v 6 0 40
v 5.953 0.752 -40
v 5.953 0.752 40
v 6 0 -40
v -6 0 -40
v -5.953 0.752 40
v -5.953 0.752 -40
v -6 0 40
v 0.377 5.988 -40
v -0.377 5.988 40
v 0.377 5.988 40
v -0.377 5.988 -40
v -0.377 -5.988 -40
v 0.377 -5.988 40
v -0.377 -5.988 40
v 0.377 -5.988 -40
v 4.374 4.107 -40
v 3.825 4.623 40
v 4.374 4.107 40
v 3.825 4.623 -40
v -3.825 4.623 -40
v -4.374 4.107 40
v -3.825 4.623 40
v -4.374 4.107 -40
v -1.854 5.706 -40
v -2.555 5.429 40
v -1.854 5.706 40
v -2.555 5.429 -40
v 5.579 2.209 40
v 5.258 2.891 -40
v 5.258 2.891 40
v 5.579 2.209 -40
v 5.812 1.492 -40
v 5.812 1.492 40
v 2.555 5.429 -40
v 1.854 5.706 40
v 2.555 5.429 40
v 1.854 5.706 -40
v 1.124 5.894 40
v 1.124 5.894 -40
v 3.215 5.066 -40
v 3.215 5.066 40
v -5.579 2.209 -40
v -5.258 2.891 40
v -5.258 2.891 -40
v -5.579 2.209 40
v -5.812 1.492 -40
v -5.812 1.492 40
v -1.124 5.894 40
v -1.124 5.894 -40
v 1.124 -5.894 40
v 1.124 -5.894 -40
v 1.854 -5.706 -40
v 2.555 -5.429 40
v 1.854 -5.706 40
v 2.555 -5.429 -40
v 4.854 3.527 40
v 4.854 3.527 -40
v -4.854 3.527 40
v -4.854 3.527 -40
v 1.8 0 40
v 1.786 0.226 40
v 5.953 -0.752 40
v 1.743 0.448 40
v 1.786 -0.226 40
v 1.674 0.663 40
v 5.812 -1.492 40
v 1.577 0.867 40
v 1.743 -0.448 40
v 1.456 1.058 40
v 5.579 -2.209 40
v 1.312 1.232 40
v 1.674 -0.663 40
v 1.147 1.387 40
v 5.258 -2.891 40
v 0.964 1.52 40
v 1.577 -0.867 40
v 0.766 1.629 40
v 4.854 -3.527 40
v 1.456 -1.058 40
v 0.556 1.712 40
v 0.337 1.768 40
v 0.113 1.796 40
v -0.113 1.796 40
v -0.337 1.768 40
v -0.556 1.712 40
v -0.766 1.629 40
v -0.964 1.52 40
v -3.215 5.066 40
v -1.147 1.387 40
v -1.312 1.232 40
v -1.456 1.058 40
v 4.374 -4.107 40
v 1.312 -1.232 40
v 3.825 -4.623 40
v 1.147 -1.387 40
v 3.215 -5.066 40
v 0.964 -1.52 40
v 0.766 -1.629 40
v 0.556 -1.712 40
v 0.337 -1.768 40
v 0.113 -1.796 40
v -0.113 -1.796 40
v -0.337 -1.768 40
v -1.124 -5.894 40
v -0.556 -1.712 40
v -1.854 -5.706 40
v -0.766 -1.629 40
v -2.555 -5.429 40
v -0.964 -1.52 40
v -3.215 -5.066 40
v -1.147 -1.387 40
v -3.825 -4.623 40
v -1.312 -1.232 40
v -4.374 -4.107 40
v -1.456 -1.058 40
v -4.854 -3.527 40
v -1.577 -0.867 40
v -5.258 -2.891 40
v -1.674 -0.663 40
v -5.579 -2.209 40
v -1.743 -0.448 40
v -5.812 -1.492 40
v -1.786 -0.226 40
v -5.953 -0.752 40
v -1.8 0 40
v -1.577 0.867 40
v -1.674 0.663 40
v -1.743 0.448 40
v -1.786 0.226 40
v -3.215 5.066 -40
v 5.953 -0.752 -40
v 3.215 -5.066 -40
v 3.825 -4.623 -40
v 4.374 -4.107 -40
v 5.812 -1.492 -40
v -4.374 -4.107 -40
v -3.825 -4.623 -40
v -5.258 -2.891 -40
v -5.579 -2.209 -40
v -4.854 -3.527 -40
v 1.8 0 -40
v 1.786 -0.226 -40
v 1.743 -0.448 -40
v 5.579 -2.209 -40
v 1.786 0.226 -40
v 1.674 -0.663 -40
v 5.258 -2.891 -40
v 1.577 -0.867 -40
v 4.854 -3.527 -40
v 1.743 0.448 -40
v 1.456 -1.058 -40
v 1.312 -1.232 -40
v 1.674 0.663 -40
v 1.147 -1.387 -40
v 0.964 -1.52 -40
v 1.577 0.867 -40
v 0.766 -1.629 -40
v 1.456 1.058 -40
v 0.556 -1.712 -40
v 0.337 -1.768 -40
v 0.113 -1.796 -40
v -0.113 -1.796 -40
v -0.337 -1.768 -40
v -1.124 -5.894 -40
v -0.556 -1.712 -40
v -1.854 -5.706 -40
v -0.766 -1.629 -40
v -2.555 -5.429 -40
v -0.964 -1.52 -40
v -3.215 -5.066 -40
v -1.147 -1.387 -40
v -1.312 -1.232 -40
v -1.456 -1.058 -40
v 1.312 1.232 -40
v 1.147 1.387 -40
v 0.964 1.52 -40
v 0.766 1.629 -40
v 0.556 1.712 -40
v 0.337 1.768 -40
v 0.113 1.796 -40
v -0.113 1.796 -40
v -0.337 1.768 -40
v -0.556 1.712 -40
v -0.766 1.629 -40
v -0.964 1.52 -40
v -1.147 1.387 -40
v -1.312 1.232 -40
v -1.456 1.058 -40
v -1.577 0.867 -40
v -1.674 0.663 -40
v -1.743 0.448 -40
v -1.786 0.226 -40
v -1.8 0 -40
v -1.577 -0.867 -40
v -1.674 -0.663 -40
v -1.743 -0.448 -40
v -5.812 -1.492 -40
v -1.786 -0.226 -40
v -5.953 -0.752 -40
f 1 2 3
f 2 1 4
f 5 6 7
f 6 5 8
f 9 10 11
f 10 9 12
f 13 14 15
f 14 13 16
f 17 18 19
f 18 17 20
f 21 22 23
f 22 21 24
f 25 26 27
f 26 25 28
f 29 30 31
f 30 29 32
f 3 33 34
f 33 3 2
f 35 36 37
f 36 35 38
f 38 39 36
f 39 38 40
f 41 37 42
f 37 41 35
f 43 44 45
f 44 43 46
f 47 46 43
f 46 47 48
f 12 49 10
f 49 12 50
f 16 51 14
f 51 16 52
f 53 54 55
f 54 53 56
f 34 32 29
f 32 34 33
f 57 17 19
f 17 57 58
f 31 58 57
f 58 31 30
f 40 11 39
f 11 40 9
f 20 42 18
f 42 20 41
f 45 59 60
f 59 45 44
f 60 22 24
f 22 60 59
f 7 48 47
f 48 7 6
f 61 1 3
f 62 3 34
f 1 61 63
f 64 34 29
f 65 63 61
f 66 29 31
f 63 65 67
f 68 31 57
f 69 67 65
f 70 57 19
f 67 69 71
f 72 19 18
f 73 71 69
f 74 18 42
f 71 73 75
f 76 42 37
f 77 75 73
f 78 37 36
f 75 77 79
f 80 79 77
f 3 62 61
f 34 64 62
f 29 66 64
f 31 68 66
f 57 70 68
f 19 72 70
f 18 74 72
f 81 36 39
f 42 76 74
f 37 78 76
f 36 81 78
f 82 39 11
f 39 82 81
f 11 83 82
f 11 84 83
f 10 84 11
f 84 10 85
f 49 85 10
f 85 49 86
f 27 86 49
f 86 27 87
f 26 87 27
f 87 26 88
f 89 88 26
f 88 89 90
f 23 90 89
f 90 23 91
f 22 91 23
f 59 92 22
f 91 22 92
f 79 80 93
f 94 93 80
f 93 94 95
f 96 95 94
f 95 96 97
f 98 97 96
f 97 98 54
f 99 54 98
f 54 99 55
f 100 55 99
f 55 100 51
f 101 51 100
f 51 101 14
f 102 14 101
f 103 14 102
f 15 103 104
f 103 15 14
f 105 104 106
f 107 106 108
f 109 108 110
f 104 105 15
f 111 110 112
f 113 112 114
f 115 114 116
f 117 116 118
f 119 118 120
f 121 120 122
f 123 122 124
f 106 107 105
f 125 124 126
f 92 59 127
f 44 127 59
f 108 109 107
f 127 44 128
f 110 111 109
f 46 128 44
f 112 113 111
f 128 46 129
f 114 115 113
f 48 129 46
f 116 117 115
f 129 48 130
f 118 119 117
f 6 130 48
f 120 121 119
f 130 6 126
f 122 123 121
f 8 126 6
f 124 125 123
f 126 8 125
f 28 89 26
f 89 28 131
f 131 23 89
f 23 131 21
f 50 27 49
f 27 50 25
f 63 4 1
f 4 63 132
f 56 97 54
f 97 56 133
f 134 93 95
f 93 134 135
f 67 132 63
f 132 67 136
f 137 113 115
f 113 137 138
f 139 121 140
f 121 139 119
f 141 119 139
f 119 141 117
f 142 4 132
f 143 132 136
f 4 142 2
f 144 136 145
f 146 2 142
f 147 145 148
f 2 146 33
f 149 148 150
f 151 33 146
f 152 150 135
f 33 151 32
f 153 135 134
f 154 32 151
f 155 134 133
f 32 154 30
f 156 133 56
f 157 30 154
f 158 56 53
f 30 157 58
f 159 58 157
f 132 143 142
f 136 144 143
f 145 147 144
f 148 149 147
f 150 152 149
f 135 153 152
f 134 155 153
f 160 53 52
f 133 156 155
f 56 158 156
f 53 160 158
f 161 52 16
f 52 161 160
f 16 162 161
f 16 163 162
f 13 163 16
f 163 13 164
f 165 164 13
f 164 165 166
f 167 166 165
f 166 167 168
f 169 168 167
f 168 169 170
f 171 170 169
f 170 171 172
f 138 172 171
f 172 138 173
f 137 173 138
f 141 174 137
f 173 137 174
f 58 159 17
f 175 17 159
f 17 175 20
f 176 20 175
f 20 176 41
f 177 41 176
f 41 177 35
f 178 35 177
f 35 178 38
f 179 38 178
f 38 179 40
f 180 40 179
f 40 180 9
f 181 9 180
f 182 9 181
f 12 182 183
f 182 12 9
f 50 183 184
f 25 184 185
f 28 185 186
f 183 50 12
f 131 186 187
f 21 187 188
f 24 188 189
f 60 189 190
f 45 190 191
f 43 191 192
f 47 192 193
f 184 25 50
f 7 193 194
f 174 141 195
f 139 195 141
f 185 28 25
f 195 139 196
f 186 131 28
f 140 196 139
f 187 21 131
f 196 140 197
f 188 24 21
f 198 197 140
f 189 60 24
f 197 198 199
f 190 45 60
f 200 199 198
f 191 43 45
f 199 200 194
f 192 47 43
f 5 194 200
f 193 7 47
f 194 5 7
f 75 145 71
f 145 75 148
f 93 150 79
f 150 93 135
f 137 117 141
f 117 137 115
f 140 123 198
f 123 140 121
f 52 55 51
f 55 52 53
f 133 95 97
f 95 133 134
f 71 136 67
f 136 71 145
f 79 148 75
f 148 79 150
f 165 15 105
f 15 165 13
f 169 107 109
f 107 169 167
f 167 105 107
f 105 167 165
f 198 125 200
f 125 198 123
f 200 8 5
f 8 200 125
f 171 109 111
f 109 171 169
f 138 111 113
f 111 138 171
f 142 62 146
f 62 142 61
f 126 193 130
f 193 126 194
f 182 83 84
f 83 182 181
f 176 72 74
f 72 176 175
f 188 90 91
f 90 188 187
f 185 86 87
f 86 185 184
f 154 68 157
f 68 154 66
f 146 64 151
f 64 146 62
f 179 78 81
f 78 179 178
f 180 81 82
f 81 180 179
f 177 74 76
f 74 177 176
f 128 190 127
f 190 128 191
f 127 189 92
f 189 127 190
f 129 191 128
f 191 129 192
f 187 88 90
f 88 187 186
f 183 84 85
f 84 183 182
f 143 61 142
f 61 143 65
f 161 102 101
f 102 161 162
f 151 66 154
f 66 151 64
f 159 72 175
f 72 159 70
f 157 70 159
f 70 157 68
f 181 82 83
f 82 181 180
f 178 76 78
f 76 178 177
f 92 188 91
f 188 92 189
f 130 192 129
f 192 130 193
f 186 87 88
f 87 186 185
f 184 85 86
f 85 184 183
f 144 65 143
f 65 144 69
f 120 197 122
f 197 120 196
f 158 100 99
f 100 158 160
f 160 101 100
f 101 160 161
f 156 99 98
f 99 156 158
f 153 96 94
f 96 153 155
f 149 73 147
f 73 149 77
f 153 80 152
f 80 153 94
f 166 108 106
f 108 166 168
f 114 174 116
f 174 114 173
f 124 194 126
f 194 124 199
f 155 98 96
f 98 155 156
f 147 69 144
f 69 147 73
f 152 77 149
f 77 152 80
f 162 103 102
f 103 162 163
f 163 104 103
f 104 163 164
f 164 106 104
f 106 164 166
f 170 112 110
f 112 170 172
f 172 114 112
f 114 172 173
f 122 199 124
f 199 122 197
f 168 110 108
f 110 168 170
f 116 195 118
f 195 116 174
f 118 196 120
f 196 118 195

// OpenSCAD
$fn = 50;


difference() {
	union() {
		translate(v = [0, 0, -40.0000000000]) {
			cylinder(h = 80, r = 6.0000000000);
		}
	}
	union() {
		translate(v = [0, 0, -100.0000000000]) {
			cylinder(h = 200, r = 1.8000000000);
		}
	}
}
